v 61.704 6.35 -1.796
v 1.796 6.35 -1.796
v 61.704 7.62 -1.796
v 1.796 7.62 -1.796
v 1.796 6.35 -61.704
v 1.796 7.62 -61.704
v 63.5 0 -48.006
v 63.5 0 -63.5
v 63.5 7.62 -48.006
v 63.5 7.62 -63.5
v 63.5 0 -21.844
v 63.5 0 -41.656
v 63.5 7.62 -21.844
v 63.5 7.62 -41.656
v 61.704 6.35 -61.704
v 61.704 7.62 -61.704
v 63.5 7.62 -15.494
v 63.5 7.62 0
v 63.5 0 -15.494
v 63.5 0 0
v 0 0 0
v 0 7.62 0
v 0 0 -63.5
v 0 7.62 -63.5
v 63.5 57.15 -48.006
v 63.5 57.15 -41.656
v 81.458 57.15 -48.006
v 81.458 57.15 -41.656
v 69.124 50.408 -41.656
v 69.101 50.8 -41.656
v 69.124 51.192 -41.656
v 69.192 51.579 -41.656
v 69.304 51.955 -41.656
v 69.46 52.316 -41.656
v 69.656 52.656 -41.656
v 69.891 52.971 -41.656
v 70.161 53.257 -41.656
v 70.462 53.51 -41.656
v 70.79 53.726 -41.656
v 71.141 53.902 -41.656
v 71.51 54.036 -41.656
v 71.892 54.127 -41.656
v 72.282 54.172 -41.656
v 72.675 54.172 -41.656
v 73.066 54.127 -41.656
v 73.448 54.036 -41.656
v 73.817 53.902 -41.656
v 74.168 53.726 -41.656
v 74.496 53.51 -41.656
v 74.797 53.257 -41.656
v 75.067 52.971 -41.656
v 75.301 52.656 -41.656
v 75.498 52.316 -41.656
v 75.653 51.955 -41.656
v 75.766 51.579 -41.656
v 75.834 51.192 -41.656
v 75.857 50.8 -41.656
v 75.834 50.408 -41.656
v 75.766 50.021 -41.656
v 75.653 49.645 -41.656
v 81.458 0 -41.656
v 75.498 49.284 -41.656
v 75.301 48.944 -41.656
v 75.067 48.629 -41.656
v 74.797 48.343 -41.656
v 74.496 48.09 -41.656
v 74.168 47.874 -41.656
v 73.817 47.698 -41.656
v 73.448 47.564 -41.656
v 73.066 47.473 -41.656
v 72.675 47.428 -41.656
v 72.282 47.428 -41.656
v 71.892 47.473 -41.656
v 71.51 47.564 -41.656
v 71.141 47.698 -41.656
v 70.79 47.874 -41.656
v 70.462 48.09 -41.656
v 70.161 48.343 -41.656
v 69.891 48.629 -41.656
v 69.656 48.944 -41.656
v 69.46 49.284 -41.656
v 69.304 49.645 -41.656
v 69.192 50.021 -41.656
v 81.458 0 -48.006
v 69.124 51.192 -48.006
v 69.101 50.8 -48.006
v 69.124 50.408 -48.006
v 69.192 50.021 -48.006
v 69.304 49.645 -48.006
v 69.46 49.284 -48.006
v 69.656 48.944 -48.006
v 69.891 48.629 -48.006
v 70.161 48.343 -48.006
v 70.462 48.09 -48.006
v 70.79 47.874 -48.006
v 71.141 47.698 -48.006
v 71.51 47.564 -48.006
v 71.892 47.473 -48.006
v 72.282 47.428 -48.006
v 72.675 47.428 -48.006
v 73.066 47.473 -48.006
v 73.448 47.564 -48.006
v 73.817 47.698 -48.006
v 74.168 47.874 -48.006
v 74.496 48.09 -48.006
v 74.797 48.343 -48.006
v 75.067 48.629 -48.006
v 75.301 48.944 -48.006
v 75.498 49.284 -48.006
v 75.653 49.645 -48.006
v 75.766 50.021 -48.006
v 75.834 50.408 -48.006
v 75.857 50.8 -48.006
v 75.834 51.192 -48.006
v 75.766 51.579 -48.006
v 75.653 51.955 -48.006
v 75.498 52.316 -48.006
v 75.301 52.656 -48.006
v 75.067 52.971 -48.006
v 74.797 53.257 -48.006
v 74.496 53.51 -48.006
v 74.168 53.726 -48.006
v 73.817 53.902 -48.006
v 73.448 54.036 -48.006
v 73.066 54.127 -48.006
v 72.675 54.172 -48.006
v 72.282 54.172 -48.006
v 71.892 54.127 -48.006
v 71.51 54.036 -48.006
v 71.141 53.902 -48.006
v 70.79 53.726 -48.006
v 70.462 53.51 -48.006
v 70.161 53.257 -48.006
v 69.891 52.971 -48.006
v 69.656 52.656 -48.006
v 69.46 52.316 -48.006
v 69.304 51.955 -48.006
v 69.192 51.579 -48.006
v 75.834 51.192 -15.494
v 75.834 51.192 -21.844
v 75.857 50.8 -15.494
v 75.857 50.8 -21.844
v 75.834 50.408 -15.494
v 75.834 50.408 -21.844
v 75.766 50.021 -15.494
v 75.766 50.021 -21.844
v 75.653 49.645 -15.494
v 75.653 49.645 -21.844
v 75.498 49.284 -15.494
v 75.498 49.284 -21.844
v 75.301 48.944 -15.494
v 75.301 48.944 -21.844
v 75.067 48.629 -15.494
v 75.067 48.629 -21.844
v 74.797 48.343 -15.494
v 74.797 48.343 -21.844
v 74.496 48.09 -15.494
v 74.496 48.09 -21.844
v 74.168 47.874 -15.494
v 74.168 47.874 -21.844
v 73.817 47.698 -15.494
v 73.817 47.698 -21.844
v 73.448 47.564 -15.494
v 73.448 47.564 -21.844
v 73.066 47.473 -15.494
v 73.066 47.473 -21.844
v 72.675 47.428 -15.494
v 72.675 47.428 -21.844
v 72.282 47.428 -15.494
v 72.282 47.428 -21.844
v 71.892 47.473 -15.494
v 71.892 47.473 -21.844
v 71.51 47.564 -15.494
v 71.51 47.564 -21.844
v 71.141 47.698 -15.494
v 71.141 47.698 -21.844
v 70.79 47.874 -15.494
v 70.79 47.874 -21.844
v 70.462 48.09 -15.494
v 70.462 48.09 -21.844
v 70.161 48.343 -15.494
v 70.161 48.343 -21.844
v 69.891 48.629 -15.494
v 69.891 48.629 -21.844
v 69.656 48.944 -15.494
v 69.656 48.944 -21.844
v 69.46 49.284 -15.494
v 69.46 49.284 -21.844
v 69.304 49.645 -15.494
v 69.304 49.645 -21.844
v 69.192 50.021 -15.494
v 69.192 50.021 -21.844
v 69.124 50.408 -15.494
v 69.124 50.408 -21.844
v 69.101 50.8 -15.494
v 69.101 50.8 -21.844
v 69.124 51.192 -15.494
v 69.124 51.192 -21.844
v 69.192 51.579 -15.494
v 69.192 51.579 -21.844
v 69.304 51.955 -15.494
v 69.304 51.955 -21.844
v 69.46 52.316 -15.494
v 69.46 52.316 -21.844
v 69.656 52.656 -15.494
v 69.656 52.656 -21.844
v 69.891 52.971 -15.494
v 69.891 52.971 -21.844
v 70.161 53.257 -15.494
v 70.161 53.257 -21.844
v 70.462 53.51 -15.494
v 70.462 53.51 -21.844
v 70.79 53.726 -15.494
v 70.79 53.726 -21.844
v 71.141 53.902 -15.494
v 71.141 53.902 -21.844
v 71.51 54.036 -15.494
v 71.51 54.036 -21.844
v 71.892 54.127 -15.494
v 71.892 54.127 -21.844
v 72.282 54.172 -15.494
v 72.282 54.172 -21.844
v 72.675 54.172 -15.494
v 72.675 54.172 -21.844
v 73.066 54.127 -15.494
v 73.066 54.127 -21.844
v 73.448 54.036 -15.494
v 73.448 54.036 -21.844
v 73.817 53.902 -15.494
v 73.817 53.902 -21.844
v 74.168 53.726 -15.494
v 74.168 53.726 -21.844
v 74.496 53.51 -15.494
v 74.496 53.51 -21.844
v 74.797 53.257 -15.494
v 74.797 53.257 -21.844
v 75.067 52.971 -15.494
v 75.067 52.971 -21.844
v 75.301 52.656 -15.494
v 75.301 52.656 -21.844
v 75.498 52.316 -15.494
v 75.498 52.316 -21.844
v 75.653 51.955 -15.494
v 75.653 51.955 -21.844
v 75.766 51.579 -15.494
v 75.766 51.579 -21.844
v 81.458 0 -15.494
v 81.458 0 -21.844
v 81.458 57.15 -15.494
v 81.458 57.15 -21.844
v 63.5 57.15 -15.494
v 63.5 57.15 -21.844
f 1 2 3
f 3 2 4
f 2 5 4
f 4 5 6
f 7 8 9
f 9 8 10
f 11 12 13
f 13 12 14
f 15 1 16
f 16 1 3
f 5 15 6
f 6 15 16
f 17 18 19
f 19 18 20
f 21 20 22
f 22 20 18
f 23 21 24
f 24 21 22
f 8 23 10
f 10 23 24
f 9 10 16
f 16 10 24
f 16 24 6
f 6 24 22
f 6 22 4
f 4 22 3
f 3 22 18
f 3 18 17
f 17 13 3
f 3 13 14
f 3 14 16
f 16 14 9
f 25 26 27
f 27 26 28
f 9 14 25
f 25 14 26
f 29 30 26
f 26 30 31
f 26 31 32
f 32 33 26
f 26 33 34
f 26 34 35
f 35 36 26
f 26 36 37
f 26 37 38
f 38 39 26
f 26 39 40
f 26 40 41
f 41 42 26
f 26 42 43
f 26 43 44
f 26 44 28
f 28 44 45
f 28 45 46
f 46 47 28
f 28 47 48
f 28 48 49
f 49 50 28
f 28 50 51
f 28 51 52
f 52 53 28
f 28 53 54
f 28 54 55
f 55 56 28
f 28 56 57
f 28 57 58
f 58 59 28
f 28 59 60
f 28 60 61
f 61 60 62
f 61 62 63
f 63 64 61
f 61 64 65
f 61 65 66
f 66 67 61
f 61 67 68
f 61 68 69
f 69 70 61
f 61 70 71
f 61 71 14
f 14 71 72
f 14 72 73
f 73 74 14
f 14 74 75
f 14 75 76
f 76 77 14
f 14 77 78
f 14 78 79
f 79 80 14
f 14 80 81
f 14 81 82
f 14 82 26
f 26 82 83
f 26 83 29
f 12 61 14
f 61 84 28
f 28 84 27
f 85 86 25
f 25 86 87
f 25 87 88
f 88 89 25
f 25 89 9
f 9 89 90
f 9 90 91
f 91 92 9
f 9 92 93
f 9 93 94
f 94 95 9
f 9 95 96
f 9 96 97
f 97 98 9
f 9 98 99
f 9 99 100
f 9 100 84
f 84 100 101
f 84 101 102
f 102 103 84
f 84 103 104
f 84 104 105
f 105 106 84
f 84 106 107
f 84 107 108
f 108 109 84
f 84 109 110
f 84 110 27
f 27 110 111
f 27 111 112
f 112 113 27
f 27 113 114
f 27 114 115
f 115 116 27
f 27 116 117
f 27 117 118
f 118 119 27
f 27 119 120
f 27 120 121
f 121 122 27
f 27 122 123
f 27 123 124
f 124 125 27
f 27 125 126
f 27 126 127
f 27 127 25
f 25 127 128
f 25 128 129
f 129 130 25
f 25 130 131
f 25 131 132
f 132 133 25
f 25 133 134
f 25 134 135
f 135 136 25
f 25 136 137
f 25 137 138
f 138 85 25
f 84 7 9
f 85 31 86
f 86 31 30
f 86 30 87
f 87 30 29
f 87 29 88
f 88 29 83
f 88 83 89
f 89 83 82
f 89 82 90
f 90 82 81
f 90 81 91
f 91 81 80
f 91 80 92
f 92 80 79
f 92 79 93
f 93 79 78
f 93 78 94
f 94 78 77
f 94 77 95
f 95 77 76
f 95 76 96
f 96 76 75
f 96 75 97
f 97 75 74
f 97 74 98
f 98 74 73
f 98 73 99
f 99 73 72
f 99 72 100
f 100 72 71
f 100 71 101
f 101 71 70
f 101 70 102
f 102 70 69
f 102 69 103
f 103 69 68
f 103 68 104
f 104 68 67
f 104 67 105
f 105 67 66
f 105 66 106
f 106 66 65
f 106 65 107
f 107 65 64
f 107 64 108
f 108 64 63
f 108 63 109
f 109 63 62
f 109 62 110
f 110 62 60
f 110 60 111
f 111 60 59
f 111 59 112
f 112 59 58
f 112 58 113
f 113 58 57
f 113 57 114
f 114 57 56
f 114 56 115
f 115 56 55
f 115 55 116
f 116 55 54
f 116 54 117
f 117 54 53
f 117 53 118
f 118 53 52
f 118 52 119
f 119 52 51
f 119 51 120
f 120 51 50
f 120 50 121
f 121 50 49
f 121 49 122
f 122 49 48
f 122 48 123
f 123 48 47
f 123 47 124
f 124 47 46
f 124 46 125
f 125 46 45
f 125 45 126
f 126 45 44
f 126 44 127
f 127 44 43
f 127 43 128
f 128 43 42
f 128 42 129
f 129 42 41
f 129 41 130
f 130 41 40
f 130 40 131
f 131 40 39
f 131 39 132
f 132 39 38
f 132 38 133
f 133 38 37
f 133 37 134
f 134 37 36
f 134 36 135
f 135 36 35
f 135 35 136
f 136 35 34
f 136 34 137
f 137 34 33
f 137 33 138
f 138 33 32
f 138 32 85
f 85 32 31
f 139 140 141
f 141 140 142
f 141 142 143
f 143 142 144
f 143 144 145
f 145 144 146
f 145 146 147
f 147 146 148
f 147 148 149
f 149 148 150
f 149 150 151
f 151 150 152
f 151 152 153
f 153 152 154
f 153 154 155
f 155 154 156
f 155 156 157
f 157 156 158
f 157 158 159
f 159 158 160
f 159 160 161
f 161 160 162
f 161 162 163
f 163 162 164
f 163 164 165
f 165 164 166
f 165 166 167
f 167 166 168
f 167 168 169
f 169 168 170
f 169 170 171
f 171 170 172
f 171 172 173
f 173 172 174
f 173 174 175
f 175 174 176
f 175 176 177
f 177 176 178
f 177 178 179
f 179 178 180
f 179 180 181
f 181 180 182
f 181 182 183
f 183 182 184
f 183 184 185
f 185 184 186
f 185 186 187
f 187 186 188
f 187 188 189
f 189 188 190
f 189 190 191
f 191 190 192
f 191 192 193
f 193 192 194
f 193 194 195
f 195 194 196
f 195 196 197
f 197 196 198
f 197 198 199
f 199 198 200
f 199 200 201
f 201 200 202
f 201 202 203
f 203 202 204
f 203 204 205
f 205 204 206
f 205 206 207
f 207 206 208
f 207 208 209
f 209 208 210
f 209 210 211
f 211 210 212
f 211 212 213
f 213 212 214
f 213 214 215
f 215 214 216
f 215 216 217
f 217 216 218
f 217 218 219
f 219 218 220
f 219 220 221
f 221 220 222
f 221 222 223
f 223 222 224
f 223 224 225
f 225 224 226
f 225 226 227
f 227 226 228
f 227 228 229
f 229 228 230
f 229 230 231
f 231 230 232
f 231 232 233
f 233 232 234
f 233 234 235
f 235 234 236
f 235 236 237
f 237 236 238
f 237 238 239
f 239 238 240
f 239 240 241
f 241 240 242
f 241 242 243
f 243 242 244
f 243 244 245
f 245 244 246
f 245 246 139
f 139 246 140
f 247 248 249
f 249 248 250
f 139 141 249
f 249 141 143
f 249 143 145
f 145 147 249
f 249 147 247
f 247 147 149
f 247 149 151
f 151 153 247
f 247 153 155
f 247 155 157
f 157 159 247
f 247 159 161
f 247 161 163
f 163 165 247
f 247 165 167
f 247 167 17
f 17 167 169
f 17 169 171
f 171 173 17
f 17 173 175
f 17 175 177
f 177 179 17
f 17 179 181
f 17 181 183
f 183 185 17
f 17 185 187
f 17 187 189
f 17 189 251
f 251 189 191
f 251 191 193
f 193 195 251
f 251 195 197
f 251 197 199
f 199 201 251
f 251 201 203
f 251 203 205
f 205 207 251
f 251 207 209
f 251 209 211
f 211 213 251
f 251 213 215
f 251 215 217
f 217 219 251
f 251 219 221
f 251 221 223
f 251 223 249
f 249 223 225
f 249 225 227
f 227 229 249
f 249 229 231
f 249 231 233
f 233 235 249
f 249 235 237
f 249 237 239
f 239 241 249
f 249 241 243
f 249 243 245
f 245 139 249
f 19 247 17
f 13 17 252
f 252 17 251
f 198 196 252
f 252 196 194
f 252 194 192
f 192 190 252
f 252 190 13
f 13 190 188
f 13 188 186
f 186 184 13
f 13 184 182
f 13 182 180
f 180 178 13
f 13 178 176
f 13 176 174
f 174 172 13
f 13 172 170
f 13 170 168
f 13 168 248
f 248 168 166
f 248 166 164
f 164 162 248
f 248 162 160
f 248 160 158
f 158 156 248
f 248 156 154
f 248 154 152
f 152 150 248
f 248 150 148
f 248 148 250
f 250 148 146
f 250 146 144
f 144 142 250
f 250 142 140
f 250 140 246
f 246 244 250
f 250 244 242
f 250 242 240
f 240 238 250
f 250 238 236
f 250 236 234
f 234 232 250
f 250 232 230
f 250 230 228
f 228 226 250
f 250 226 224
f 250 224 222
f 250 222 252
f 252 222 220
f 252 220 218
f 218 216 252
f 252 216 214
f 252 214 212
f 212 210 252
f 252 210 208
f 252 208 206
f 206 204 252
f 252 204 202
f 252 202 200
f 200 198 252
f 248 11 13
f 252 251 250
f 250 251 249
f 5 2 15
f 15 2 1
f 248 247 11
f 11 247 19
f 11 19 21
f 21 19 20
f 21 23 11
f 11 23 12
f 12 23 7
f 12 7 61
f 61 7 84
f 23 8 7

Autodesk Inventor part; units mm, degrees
ref_plane "YZ Plane" through (0, 0, 0) normal (1, 0, 0) x (0, 1, 0)
ref_plane "XZ Plane" through (0, 0, 0) normal (0, 1, 0) x (-1, 0, 0)
ref_plane "XY Plane" through (0, 0, 0) normal (0, 0, 1) x (1, 0, 0)
sketch "Sketch1" plane through (0, 0, 0) normal (0, 1, 0) x (-1, 0, 0)
  line L0 (0, 0) -> (-63.5, 0)
  line L1 (-63.5, 0) -> (-63.5, -63.5)
  line L2 (-63.5, -63.5) -> (0, -63.5)
  line L3 (0, -63.5) -> (0, 0)
  line L4 (-63.5, -57.15) -> (-63.5, -63.5)
  line L5 (-63.5, -6.35) -> (-63.5, 0)
  line L6 (-63.5, -31.75) -> (-63.5, -41.656)
  line L7 (-63.5, -31.75) -> (-63.5, -21.844)
  line L8 (-63.5, -21.844) -> (-81.4578, -21.844)
  line L9 (-81.4578, -21.844) -> (-81.4578, -15.494)
  line L10 (-81.4578, -15.494) -> (-63.5, -15.494)
  line L11 (-63.5, -15.494) -> (-63.5, -21.844)
  line L12 (-63.5, -41.656) -> (-81.4578, -41.656)
  line L13 (-81.4578, -41.656) -> (-81.4578, -48.006)
  line L14 (-81.4578, -48.006) -> (-63.5, -48.006)
  line L15 (-63.5, -48.006) -> (-63.5, -41.656)
  line L16 (0, 0) -> (-1.7961, -1.7961)
  line L17 (0, 0) -> (2.54, 0) construction
  line L18 (-63.5, -63.5) -> (-61.7039, -61.7039)
  line L19 (-1.7961, -1.7961) -> (-61.7039, -1.7961)
  line L20 (-61.7039, -1.7961) -> (-61.7039, -61.7039)
  line L21 (-61.7039, -61.7039) -> (-1.7961, -61.7039)
  line L22 (-1.7961, -61.7039) -> (-1.7961, -1.7961)
  point P0 (-63.5, -15.494)
  dimension "PlatformL" = 63.5
  dimension "PlatformW" = 63.5
  dimension "SideThickness" = 9.906
  dimension "d12" = 9.906
  dimension "EarWidth" = 17.9578
  dimension "EarThickness" = 6.35
  dimension "d15" = 17.9578
  dimension "d16" = 6.35
  dimension "d26" = 2.54
  dimension "d27" = 135
  dimension "d28" = 2.54
extrude "Extrusion1" add sketch "Sketch1" along normal blind 6.35 contours L22 L21 L20 L19
extrude "Extrusion2" add sketch "Sketch1" along normal blind 57.15 contours L1 L8 L9 L10 | L14 L13 L12 L1
sketch "Sketch3" plane through (63.5, 0, -15.494) normal (0, 0, 1) x (1, 0, 0)
  line L0 (0, 0) -> (17.9578, 0) projected
  line L1 (8.9789, 0) -> (8.9789, 50.8)
  line L2 (8.9789, 0) -> (59.7789, 0) construction
  point P0 (-63.5, 0)
  dimension "HeightToHole" = 50.8
  dimension "d18" = 90
hole "Hole1" at (72.4789, 50.8, -15.494) direction (0, 0, -1) diameter 6.7564 end through all clearance for "Flat Head Machine Screw (82)" size "1/4" standard "Ansi Unified Screw Threads"
extrude "Extrusion3" add sketch "Sketch1" along normal blind 7.62 contours L16 L19 L20 L18 L1 L0 | L3 L2 L18 L21 L22 L16
equation "\"d12\" = SideThickness"
equation "\"d15\" = EarWidth"
equation "\"d16\" = EarThickness"
properties part number "wastebottleholder"
